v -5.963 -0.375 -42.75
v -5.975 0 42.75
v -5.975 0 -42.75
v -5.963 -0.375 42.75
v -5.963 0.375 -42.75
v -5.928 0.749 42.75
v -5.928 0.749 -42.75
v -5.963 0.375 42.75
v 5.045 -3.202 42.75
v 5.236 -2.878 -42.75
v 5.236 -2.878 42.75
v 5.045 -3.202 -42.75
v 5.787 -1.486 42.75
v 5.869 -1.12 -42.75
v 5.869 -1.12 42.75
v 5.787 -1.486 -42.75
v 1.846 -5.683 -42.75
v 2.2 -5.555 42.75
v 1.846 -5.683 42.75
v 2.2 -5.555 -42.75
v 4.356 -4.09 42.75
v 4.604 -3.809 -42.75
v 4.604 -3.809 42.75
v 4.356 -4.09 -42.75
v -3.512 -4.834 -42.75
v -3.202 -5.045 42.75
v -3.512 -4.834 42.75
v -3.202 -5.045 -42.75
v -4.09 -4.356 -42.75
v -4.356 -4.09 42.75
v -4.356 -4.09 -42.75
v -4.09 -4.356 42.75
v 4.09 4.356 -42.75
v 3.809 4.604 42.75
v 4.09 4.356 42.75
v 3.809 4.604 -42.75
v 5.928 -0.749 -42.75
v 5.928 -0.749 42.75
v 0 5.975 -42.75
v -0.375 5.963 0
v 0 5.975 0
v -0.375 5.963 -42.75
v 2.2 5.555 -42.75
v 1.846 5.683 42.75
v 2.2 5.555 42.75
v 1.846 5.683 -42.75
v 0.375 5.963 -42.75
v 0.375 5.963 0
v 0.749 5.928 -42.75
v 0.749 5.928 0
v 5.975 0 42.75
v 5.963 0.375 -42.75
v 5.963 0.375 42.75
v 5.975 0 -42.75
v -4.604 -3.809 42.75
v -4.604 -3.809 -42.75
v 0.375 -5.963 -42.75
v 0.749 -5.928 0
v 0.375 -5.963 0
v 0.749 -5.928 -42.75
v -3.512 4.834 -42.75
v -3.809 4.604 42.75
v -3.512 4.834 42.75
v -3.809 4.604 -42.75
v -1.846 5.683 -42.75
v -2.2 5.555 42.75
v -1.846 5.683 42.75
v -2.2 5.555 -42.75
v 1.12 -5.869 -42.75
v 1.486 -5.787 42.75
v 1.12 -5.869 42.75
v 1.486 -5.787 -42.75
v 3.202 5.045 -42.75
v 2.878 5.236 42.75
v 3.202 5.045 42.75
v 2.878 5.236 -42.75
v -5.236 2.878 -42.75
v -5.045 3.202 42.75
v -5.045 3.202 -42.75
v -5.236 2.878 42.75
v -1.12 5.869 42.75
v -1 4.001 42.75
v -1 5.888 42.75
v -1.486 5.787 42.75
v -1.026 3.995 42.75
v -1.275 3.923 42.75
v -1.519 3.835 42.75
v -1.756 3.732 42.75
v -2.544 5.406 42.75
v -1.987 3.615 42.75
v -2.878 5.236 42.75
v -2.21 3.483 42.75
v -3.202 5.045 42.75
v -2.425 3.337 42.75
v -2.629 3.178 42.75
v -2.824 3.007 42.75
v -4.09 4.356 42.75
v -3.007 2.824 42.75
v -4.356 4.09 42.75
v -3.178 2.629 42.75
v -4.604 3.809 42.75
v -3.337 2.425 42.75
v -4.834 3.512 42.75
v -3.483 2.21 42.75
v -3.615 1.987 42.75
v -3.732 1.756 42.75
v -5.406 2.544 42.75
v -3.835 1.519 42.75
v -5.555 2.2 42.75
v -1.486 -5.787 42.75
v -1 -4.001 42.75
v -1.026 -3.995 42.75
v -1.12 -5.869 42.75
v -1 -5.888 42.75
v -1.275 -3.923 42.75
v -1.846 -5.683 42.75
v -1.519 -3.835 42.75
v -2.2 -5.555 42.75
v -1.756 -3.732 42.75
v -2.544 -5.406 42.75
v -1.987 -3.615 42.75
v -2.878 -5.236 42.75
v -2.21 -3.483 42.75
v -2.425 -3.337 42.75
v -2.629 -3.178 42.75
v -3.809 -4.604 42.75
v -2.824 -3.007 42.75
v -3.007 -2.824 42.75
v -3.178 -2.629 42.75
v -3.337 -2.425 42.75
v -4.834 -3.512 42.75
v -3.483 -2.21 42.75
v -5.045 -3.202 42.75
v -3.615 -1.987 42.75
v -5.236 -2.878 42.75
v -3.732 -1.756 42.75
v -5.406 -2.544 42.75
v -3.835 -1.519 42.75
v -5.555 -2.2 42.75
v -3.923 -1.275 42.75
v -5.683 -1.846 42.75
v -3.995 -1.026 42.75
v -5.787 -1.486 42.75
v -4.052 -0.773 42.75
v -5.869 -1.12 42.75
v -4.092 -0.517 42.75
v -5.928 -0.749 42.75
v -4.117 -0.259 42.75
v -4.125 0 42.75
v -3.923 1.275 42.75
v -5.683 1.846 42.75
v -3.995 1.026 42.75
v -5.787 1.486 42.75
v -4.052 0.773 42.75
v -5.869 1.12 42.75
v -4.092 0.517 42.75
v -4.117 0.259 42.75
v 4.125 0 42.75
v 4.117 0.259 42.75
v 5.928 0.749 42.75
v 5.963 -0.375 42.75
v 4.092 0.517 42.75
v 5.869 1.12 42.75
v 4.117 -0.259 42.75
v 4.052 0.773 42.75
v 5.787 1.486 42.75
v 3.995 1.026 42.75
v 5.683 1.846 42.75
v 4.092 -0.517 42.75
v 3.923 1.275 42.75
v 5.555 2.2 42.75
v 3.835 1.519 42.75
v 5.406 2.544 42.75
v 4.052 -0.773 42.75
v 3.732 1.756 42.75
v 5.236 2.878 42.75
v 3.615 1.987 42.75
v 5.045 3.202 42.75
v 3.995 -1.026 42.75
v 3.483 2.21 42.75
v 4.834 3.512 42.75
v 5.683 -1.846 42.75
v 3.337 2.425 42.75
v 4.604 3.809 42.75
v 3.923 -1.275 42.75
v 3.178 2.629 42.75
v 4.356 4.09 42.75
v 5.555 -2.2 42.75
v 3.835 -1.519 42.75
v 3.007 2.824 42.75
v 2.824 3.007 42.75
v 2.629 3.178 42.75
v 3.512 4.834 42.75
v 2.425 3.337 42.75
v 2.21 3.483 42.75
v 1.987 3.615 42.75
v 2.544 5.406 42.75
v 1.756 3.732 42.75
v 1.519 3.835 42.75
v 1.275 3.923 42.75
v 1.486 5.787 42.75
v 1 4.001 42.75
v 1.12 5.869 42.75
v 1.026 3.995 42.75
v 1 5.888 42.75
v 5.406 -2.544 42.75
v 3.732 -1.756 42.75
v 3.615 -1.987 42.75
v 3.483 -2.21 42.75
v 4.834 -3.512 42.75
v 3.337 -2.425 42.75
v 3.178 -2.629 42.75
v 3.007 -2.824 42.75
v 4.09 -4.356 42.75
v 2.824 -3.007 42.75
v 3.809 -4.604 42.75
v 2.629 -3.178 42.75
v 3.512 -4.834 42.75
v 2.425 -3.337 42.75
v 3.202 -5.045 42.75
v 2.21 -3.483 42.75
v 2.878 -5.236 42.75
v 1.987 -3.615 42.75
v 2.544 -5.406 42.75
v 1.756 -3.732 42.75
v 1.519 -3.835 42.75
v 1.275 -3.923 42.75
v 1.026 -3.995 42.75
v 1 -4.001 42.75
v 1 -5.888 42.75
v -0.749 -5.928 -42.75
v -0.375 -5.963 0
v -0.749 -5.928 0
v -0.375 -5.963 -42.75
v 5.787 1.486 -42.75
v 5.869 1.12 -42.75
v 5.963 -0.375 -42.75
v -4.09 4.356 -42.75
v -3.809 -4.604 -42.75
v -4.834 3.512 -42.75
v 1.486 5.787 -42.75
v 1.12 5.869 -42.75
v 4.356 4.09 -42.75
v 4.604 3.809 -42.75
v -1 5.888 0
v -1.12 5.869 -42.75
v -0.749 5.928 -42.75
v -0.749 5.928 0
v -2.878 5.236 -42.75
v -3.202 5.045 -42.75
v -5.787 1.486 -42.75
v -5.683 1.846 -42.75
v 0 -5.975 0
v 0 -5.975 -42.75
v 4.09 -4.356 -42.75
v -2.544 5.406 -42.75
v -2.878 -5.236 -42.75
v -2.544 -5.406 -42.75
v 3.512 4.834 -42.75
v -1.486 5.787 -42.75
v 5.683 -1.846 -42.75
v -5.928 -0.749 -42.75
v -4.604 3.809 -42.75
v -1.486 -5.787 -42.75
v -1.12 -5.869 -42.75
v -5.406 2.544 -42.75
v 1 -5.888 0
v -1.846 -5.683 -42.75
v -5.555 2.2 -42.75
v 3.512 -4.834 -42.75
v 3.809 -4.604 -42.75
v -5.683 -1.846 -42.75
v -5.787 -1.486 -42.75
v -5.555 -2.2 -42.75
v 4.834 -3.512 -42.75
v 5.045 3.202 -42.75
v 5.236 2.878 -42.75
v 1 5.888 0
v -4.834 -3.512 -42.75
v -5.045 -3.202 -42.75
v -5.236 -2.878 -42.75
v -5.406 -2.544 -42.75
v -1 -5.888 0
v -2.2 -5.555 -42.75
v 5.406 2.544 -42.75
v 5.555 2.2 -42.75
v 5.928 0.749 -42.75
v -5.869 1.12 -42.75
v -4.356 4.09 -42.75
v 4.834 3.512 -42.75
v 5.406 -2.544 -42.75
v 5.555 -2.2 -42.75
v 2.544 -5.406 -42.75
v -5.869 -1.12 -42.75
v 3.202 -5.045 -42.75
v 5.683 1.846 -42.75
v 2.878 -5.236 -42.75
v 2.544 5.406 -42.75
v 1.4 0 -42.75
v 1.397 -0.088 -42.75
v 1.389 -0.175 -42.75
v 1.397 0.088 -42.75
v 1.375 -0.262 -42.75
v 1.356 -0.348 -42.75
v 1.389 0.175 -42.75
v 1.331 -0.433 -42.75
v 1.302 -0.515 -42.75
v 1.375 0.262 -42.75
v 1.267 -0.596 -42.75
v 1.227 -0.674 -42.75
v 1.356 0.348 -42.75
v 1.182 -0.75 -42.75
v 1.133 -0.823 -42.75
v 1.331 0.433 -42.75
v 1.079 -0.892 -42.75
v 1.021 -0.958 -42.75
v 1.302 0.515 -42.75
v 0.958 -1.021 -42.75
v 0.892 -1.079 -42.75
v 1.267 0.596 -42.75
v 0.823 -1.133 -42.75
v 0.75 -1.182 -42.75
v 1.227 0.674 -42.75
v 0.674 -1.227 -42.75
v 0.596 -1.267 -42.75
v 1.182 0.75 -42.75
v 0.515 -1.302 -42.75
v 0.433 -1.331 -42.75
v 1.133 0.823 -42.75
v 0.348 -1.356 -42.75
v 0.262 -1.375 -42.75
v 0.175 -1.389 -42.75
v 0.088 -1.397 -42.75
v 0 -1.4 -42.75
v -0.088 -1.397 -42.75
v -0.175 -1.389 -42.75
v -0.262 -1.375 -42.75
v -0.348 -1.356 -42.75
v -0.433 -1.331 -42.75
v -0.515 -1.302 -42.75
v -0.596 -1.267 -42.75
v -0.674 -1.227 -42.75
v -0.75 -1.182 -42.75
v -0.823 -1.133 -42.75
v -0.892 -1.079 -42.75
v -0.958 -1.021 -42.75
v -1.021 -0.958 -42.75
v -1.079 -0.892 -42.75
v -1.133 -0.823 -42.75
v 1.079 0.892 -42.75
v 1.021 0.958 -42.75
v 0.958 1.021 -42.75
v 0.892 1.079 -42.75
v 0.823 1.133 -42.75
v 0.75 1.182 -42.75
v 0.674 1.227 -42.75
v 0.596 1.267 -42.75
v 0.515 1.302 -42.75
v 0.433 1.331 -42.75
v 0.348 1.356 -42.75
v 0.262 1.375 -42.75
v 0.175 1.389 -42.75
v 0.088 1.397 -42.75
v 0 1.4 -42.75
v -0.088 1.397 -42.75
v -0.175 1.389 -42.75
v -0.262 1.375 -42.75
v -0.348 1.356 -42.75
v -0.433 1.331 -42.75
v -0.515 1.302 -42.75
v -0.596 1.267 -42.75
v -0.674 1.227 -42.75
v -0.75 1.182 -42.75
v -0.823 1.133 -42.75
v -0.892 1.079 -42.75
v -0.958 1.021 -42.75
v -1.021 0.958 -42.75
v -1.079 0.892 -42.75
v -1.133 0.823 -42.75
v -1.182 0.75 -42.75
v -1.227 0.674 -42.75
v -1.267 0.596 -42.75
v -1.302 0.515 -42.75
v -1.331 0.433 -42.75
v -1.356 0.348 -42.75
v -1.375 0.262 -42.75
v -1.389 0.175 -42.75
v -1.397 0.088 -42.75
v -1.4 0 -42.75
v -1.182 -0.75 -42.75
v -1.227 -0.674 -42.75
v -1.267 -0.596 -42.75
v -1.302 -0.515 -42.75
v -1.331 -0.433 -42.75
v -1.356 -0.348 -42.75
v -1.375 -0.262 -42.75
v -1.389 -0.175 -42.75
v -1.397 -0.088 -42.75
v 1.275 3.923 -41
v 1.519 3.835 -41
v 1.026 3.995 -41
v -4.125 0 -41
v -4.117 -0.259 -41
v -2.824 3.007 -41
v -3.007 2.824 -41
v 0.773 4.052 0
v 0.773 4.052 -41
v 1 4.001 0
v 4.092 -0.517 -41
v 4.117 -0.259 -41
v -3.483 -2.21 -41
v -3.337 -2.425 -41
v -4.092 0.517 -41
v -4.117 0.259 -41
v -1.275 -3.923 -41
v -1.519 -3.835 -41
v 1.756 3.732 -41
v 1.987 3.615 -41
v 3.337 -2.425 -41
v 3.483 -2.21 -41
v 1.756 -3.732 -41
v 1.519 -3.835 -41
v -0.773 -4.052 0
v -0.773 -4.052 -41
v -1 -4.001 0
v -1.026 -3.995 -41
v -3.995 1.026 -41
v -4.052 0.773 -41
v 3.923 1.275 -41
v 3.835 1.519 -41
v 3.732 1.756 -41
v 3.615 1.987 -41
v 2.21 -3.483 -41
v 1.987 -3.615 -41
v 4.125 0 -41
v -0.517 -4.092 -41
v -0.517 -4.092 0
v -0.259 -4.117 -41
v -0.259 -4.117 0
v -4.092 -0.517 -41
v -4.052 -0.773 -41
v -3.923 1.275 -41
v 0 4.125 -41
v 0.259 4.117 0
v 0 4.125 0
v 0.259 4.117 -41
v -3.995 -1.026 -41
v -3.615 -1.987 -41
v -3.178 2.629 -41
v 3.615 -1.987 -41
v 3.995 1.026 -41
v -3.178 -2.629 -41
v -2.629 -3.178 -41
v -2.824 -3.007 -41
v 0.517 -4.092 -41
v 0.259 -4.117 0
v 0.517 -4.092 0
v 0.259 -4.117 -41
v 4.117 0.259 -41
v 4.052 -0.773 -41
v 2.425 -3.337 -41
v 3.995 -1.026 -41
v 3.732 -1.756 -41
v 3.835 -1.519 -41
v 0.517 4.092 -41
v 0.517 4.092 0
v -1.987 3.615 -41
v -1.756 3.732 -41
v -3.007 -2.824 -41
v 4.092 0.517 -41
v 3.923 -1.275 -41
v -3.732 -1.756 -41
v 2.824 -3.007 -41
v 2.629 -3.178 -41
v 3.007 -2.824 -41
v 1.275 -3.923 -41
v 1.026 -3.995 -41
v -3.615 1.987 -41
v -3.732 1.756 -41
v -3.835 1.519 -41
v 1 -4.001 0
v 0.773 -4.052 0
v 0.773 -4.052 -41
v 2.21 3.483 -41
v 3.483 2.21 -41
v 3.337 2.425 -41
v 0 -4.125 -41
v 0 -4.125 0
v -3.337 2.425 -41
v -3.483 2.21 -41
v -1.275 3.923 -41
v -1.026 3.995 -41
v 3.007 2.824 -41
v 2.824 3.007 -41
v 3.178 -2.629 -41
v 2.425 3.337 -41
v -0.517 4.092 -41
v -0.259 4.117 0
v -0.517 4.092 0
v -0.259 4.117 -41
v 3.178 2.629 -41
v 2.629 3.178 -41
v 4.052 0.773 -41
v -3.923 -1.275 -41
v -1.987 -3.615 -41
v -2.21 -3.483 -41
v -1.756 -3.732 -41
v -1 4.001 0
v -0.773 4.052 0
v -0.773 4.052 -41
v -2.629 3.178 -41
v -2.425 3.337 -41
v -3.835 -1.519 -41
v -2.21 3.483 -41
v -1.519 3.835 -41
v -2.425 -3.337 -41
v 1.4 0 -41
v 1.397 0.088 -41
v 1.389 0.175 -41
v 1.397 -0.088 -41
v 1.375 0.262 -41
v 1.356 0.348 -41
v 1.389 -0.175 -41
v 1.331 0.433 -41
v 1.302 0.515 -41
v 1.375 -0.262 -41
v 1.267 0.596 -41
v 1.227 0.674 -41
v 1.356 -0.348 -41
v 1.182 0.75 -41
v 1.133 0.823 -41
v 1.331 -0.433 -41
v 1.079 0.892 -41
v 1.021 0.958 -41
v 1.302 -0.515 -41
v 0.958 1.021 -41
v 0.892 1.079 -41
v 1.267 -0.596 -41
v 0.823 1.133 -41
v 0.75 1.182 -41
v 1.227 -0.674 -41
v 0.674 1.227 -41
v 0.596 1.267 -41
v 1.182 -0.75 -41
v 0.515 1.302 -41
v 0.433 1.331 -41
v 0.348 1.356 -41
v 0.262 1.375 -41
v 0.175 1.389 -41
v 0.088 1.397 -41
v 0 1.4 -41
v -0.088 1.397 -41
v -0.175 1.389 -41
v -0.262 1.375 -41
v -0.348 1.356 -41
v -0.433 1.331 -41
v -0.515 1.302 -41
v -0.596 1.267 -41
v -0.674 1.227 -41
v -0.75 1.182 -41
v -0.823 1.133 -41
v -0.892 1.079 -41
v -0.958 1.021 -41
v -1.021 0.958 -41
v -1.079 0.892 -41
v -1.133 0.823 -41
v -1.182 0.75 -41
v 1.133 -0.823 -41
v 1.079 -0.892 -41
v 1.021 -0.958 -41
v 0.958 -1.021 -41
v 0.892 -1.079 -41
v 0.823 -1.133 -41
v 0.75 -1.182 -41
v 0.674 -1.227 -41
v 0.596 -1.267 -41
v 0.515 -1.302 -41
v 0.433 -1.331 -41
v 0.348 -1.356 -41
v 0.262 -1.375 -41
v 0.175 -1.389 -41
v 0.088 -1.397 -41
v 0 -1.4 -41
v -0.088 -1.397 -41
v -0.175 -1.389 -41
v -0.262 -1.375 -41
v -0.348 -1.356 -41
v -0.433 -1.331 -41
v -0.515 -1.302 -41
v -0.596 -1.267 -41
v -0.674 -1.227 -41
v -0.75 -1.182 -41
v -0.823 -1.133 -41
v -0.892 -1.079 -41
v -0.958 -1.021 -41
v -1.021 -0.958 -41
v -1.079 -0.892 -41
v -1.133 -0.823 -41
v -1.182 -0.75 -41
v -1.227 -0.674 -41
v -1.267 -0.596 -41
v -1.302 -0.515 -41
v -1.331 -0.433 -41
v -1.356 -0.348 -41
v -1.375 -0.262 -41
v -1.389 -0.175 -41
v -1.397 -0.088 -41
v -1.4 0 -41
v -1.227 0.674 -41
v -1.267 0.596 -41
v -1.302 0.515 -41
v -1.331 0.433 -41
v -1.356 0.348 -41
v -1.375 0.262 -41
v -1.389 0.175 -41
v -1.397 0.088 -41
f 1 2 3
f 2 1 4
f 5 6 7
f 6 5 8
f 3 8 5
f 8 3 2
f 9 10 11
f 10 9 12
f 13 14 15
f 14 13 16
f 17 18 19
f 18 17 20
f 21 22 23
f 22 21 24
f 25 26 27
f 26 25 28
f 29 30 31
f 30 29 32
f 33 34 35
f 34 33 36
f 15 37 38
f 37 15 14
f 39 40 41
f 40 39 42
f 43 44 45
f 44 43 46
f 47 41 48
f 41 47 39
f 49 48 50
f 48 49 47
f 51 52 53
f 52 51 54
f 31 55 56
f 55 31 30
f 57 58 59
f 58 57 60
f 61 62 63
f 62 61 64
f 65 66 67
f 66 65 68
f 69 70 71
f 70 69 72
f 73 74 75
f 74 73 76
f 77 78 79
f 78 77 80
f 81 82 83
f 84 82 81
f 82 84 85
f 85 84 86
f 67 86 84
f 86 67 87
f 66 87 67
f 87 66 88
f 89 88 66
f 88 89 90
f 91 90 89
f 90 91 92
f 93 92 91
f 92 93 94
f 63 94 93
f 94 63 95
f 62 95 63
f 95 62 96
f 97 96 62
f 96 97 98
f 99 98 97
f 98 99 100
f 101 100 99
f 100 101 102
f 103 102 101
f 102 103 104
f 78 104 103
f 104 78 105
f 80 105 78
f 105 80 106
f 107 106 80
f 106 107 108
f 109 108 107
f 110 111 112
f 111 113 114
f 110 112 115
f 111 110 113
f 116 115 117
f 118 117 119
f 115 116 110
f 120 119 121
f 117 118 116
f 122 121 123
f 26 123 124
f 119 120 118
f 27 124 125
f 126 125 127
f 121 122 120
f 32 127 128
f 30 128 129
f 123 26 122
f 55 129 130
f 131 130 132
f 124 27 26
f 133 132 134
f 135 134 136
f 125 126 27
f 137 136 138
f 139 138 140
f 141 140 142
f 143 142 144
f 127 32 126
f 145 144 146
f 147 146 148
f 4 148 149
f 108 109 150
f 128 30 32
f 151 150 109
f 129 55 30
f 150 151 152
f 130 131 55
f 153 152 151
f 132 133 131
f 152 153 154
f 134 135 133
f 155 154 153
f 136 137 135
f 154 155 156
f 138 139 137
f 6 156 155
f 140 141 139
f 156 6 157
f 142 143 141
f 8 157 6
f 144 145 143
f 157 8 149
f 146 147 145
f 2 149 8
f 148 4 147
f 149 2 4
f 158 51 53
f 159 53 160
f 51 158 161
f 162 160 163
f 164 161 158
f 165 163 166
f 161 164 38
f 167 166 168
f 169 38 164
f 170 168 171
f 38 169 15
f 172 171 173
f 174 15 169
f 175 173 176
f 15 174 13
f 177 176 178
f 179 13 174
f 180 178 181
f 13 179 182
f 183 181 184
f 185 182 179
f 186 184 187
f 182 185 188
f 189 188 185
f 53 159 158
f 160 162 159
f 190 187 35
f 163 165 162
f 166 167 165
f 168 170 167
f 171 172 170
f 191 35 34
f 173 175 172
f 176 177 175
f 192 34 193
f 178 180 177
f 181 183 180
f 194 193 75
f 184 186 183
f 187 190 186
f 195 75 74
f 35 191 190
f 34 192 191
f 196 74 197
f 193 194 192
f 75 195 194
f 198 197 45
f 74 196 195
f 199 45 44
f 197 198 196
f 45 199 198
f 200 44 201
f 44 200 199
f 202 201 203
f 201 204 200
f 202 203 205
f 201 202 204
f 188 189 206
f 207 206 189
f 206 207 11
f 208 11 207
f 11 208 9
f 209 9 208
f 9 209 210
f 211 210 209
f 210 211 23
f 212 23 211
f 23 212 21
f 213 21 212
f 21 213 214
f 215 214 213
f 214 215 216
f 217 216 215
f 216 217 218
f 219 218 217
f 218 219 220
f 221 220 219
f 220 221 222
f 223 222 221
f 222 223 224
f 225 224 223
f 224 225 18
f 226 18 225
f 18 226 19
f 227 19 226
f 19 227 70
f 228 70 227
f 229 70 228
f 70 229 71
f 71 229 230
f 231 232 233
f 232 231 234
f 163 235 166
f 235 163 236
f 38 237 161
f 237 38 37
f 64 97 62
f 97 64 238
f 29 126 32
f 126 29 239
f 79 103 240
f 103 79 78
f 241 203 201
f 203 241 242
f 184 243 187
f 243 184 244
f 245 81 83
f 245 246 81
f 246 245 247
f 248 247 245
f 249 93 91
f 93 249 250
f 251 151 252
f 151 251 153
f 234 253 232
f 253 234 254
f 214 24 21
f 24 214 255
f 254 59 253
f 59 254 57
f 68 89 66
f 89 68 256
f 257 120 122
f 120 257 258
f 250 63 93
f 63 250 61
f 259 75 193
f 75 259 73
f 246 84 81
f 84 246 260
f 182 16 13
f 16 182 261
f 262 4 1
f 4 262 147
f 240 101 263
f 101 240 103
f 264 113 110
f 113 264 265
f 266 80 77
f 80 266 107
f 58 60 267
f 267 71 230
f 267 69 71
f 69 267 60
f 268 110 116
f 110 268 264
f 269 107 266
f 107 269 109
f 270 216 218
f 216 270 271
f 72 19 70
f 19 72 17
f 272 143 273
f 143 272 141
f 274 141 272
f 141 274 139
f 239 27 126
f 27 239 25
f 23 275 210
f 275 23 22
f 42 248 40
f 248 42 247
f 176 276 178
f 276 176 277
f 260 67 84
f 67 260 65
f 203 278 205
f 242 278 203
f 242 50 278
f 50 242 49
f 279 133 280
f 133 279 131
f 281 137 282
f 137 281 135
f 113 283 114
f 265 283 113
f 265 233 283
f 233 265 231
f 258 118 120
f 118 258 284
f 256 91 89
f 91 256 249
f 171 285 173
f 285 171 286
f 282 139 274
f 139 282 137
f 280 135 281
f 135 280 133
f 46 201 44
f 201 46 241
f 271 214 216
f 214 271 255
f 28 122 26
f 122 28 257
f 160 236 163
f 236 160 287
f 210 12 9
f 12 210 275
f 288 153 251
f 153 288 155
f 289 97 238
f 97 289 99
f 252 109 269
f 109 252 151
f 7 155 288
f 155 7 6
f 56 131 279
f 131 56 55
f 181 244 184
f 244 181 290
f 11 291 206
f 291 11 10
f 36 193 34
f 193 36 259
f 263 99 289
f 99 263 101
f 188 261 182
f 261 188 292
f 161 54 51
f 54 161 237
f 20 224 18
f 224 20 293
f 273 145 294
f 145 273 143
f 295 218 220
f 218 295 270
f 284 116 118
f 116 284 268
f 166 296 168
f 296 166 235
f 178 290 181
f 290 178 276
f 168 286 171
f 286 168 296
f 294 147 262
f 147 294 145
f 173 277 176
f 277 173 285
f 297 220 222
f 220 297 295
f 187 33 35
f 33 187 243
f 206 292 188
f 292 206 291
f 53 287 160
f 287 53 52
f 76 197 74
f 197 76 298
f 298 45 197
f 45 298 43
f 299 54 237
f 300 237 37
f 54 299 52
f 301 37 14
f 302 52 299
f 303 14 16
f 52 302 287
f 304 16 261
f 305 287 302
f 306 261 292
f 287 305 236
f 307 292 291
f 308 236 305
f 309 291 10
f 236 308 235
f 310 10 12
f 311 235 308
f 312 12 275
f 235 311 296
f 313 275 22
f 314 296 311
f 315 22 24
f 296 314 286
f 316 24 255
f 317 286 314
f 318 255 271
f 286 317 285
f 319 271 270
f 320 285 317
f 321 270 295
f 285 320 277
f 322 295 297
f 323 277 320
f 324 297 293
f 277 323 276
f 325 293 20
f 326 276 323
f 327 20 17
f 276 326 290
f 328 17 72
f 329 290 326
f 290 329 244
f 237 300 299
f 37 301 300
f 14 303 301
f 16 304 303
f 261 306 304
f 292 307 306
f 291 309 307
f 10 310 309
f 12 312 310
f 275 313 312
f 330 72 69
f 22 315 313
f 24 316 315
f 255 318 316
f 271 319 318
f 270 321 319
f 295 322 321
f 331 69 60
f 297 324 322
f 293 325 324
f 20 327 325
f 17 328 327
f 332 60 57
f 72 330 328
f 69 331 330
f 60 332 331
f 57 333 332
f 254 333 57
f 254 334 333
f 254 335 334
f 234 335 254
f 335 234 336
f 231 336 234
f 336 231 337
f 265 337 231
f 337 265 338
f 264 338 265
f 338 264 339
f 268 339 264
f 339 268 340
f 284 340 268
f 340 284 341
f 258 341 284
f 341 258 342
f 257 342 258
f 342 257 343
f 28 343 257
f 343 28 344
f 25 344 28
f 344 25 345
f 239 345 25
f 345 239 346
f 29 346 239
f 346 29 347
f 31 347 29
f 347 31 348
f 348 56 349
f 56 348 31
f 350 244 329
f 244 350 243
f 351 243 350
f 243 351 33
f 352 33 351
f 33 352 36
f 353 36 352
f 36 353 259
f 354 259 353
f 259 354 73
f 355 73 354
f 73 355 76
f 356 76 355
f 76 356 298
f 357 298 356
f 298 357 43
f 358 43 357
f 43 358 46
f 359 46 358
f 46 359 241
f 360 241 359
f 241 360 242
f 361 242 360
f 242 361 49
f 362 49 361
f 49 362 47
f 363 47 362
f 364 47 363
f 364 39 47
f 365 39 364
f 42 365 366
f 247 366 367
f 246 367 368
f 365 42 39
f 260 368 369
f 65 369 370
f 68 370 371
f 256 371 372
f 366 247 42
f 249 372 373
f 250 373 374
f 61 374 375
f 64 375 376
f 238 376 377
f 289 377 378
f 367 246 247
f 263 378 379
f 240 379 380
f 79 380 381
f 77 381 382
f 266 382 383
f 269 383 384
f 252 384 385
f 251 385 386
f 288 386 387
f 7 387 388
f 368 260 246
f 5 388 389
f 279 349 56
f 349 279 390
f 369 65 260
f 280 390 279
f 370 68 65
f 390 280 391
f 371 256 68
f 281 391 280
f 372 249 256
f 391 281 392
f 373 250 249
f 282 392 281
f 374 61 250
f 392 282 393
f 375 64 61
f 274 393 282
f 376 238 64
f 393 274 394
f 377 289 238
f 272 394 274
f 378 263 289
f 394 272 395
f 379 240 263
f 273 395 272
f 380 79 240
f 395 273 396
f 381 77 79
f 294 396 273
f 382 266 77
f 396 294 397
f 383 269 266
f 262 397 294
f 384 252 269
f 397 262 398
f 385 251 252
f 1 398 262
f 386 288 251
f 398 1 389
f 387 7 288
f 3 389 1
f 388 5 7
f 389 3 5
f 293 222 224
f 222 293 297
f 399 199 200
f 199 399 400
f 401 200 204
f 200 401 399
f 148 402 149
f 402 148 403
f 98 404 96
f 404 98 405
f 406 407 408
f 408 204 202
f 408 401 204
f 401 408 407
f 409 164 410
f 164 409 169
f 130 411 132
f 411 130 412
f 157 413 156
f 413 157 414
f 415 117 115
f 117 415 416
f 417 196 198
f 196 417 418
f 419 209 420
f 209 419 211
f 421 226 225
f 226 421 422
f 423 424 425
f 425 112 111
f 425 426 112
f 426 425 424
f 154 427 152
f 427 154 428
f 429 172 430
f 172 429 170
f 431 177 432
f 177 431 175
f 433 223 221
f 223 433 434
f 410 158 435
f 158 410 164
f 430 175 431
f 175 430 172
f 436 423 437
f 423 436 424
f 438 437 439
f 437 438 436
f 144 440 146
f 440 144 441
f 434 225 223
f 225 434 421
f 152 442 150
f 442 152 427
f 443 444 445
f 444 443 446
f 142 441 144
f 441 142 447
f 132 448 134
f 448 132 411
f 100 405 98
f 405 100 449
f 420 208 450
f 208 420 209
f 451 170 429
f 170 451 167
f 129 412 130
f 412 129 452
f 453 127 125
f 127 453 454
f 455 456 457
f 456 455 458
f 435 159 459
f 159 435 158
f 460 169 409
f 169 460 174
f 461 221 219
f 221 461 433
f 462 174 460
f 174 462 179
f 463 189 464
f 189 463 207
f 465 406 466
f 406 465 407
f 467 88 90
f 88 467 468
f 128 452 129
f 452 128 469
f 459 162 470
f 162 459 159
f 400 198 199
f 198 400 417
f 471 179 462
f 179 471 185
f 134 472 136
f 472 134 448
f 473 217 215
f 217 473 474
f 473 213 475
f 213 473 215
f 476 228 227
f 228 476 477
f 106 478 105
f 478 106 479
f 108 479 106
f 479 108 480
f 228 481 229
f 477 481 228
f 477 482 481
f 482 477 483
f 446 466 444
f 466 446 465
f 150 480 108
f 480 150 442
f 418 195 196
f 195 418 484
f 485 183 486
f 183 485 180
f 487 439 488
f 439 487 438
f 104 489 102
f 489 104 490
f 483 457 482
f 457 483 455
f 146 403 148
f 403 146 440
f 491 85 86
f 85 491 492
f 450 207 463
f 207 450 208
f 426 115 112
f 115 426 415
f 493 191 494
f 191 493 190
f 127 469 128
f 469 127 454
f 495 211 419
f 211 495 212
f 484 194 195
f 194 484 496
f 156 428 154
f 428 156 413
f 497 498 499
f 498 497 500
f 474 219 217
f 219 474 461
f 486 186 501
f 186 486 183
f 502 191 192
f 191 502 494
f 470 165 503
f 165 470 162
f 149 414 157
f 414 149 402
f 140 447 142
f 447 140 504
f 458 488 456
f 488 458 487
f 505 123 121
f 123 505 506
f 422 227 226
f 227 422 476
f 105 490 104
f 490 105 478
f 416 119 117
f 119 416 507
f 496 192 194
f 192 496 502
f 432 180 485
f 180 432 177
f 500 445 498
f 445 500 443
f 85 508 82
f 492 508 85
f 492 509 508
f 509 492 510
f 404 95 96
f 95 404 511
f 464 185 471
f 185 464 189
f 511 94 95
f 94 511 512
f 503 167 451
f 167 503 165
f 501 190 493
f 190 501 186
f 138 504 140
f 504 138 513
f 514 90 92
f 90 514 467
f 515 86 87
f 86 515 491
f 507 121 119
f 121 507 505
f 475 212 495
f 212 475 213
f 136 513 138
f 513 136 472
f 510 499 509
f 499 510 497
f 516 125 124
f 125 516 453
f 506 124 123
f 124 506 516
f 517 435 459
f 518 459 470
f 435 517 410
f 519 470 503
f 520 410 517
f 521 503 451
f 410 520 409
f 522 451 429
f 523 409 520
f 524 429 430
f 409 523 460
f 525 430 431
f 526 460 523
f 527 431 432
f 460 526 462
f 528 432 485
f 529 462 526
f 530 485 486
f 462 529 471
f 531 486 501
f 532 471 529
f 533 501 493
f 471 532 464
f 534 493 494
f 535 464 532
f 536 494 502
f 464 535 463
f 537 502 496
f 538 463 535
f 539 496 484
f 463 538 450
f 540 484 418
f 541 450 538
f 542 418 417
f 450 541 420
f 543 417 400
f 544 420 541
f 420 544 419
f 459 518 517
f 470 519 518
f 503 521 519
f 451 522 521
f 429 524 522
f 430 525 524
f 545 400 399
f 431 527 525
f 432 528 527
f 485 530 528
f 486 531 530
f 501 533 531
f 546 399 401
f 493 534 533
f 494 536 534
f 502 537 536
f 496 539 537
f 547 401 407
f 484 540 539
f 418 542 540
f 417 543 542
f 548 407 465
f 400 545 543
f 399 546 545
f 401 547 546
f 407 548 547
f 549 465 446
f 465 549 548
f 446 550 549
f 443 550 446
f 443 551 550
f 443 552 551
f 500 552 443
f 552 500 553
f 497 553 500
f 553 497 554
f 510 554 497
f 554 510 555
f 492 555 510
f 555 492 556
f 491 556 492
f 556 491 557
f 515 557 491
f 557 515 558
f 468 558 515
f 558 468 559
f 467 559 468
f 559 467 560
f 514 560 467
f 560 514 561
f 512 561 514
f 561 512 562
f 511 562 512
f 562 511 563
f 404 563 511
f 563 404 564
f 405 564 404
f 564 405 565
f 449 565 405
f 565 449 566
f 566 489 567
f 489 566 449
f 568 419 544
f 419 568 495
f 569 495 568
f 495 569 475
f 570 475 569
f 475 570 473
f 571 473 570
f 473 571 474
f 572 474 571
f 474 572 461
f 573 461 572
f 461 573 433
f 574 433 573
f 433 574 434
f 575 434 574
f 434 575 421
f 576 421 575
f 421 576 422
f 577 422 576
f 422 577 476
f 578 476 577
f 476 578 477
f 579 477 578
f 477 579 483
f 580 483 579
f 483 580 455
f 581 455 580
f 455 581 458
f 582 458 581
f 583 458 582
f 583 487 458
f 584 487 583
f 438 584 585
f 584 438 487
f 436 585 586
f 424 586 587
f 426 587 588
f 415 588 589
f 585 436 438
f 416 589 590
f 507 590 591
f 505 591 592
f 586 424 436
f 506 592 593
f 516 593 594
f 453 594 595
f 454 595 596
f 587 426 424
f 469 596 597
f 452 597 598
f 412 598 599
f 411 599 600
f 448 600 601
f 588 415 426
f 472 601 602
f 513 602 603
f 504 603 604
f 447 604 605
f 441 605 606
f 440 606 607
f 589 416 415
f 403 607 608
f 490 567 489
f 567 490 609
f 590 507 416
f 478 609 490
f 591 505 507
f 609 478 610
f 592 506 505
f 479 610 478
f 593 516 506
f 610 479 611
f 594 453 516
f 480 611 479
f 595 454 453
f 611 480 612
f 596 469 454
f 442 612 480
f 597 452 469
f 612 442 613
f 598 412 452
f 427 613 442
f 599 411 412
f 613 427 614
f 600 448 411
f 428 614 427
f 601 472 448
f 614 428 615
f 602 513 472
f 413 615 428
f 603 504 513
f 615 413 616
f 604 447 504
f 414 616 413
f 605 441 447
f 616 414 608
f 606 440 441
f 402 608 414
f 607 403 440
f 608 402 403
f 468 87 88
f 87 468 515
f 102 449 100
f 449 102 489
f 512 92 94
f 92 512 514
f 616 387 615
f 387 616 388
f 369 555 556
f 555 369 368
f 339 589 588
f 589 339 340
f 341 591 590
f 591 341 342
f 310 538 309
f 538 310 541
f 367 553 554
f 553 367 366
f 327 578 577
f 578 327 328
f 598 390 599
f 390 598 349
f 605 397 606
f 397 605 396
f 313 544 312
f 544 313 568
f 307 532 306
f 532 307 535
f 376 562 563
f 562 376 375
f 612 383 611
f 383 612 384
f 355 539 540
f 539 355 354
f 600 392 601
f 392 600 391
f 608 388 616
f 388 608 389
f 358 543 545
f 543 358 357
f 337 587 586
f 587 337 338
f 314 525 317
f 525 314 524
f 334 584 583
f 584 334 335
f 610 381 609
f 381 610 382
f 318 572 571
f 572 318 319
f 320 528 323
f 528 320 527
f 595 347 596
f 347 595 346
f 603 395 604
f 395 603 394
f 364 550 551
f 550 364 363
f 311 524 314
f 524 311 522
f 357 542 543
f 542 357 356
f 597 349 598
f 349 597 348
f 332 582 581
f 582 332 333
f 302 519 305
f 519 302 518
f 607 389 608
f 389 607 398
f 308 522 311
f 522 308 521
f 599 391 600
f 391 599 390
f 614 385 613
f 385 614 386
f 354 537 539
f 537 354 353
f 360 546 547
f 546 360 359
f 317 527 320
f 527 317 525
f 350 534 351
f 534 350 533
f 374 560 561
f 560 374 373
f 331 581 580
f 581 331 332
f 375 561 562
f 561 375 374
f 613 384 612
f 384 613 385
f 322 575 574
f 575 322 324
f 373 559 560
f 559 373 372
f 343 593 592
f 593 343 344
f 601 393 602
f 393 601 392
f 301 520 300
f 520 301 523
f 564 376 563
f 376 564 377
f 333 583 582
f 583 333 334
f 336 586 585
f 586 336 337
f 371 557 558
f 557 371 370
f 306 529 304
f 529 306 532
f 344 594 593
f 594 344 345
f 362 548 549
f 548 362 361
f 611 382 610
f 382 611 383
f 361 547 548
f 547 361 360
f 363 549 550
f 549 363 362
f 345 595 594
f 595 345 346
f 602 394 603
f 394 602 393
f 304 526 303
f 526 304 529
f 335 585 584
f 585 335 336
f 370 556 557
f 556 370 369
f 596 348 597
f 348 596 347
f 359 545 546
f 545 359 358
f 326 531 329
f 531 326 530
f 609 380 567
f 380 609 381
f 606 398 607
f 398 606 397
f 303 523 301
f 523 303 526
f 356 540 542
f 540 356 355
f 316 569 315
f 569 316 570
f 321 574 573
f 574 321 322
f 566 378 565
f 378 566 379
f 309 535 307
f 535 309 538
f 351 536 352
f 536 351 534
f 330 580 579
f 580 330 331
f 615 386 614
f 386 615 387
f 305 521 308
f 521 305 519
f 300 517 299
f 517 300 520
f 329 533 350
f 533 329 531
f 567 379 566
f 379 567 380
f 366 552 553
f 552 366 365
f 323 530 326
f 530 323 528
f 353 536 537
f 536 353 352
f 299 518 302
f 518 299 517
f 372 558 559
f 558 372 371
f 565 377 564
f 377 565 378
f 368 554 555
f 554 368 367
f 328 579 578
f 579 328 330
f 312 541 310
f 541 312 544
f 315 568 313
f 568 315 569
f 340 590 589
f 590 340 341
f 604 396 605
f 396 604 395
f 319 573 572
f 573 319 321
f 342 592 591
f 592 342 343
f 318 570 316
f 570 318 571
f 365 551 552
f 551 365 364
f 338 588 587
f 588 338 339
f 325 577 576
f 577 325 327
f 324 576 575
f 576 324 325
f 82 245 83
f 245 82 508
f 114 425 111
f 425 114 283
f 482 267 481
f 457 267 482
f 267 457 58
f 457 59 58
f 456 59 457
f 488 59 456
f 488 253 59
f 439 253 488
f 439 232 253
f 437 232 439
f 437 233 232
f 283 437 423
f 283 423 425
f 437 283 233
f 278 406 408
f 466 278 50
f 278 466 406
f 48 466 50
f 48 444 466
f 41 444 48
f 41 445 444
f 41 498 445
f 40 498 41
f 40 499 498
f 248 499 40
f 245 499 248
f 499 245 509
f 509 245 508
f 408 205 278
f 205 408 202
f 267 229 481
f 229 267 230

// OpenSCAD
// file: ../../../shared_helper.scad
// Shared Helper variables and modules

// Variables
quality_value = 100;
$fn = quality_value;

// Screw Holes
m2_hole_diameter = 1.85; // 1.95;
m2_loose_diameter = 2.50;
m2_counter_sink_diameter = 3.80;
m2_counter_sink_length = 2.00;
m2_hole_offset = m2_hole_diameter / 2.0;
m2_hole_height = 100.00;
m2_nut_outer_width = 3.90;
m2_nut_outer_height = 4.40;
m2_nut_outer_depth = 1.50;
// M2_Counter_Sink_Depth

m3_hole_diameter = 2.9; // 2.8
m3_hole_offset = m3_hole_diameter / 2.0;
m3_hole_height = 100.00;
m3_head_diameter = 6.2;
m3_head_depth = 3.0; // 2.5??, 3.0

m4_hole_diameter = 3.85; // 3.90
m4_hole_offset = m4_hole_diameter / 2.0;
m4_hole_height = 100.00;
m4_head_diameter = 7.55;
m4_head_depth = 3.0; // 2.5??, 3.0

// Tolerances
hole_tight_tolerance = 0.05;
hole_loose_tolerance = 0.20;

// Springs
spring_diameter = 5.45;
spring_length = 35.00;

// Nails
brass_nail_diameter = 2.4; // 2.00; // 1.95 at the beginning it tapers
brass_nail_length = 29.54;
brass_nail_head_diameter = 3.20; // 3.00; // oval 2.84 - 3.1 mm
brass_nail_head_depth = 1.80; //1.00; // 1.80; // 2.00;

// General Variables
v_wheel_hole_diameter = 5.20;
v_wheel_offset = (v_wheel_hole_diameter / 2.0) + 2.0;

// Hot-End Holes
stand_off_hole_diameter = m3_hole_diameter;
stand_off_width_distance = 11.60 + stand_off_hole_diameter;

// Magnets
// Small Magnet (Neo)
small_magnet_height = 2.00; // ±2.00 1.97
small_magnet_diameter = 3.00; // ±3.00 // 2.98

// Medium Magnet (Neo)
medium_magnet_height = 2.96; // ±3.00
medium_magnet_diameter = 5.00;

// Large Magnet (ferrite)
large_magnet_height = 2.98; // ±3.00
large_magnet_diameter = 9.79; // ±10.00

// Switches
// D2F Switch
d2f_length = 12.88; // ±12.70
d2f_width = 5.84; // ±5.70
d2f_depth = 6.20; // ±7.00 (5 + 2) ... ±6.50
d2f_pins = 9.00 - 6.50;
d2f_plunger_length = 2.64;
d2f_plunger_width = 0.97; // ±1.00
d2f_plunger_depth = 0.39; // ±0.50
d2f_mount_hole_position = 2.10;
d2f_hole_position_from_centre = 2.85;
d2f_pin_pre_travel = 0.50;
d2f_mount_hole_shift = 4.40 + m2_hole_offset + m2_hole_offset;
d2f_switch_base = 0.2 + 0.7 + 1.50 + 0.55 - 1.0;
d2f_switch_hole_hight = 22.00;
d2f_extra_tolerance_for_switch_holes = 0.12;

// 10t85 Switch
10t85_length = 20.04; // ±19.90
10t85_width = 6.34; // ±6.40
10t85_depth = 10.64; // ±10.70
10t85_plunger_length = 3.28; // ±4.00
10t85_plunger_width = 1.96;
10t85_plunger_depth = 1.30;

// Creality Endstop Board, 2208 V2.0
// creality_endstop_hole_diameter = m3_hole_diameter + hole_loose_tolerance; // Hole is M3 sized but meant for a loose M2
creality_endstop_hole_diameter = m2_hole_diameter + hole_tight_tolerance;
creality_endstop_hole_offset = 15.00;
creality_endstop_board_height = 20.30;
creality_endstop_plug_height_extension = 2.00;
creality_endstop_board_width = 20.20;
creality_endstop_board_thickness = 1.30;
creality_endstop_board_pins_thickness = 3.20 - creality_endstop_board_thickness;
creality_endstop_board_switch_thickness = 8.50 - creality_endstop_board_thickness;
creality_endstop_board_back_space = 2.00; // Taken from the rail mount bracket
creality_endstop_board_back_height = 14.90;
creality_endstop_board_back_width = 16.80;
creality_endstop_back_thickness = 3.30;
creality_endstop_back_hole_wall_spacing = 1.50; //3.00;

// Small Tactile Switch
small_tactile_switch_length = 6.21;
small_tactile_switch_width = 6.17;
small_tactile_switch_depth = 3.18;
small_tactile_switch_plunger_diameter = 3.40;
small_tactile_switch_plunger_depth = 1.40;

// Large Tactile Switch
large_tactile_switch_length = 12.03;
large_tactile_switch_width = 11.95;
large_tactile_switch_depth = 3.12;
large_tactile_switch_plunger_length = 3.75;
large_tactile_switch_plunger_width = 3.70;
large_tactile_switch_plunger_depth = 3.94;

// Button
button_topper_top_diameter = 11.65;
button_topper_bottom_diameter = 12.96;
button_topper_depth = 5.64;
button_topper_bottom_depth = 4.38;

// Belts
// GT2

// Modules
// Creality Mounting Holes
module CrealityCounterSunkHotEndMountingHoles(total_casing_depth, casing_top_extension) {
  // Mounting holes with countersinking - horizontal, through-holes, properly positioned
  cylinder(d=m3_hole_diameter, h=total_casing_depth + 2.00, center=true);
  cylinder(d=m3_hole_diameter, h=total_casing_depth + 2.00, center=true);

  translate([stand_off_width_distance, 0, 0]) {
    cylinder(d=m3_hole_diameter, h=total_casing_depth + 2.00, center=true);
    cylinder(d=m3_head_diameter + hole_loose_tolerance, h=4 + m3_head_depth + 6 + 1.8 + casing_top_extension);
  }
}

module CrealityHotEndMountingHoles(total_casing_depth) {
  cylinder(d=m3_hole_diameter, h=total_casing_depth + 2.00, center=true);

  translate([stand_off_width_distance, 0, 0]) {
    cylinder(d=m3_hole_diameter, h=total_casing_depth + 2.00, center=true);
  }
}

module CrealityEndstopMountHoles(height, include_back_nut_cutout) {
  cylinder(d=creality_endstop_hole_diameter, h=height, center=true);

  translate([creality_endstop_hole_offset, 0, 0]) {
    cylinder(d=creality_endstop_hole_diameter, h=height, center=true);
  }

  if (include_back_nut_cutout) {
    back_depth = m2_nut_outer_depth;

    translate([-2.0, -2.0, 0]) {
      cube([m2_nut_outer_width, m2_nut_outer_height, back_depth]);

      translate([creality_endstop_hole_offset, 0, 0]) {
        cube([m2_nut_outer_width, m2_nut_outer_height, back_depth]);
      }
    }
  }
}

module CrealityEndstopBackSpace(base_cutout_extension) {
  // Smaller gap between screw holes
  translate([creality_endstop_hole_diameter + creality_endstop_back_hole_wall_spacing, 0.0, 0.0]) {
    cube([creality_endstop_board_back_width - 2 * (creality_endstop_hole_diameter + creality_endstop_back_hole_wall_spacing), base_cutout_extension, creality_endstop_back_thickness + 1.0]);
  }

  // Top gap part
  translate([0.0, base_cutout_extension, 0]) {
    cube([creality_endstop_board_back_width, (creality_endstop_board_back_height + base_cutout_extension), creality_endstop_back_thickness + 1.0]);
  }
}

// D2F Switch Mounting
module D2F_Switch_Space() { // Should be used as a negative / difference space
  // D2F Switch Space
  // switch_base = 0.2 + 0.7 + 1.50 + 0.55;
  // switch_base = 0.2 + 0.7 + 1.50 + 0.55 - 1.0;
  switch_base = d2f_switch_base;

  // cube([d2f_depth, d2f_width + 1.05 + 0.75 - 0.95, d2f_length + casing_top_edge_buffer]); // 1.05
  cube([d2f_length, (d2f_width + 2.00) + d2f_pins, d2f_depth]);
}

module D2F_Switch_Mount_Holes() {
  rotate([0, 0, 90]) {
    translate([0.0, d2f_hole_position_from_centre, 0.0]) {
      cylinder(d=m2_hole_diameter + hole_tight_tolerance + (d2f_extra_tolerance_for_switch_holes * 3), h=d2f_switch_hole_hight);
    }

    translate([0.0, -(d2f_hole_position_from_centre + m2_hole_offset), 0.0]) {
      cylinder(d=m2_hole_diameter + hole_tight_tolerance + (d2f_extra_tolerance_for_switch_holes * 3), h=d2f_switch_hole_hight);
    }
  }
}
// main file
// 8mm to 12mm Rod Sleeve Adapter

// This sleeve converts an 8mm linear stainless rod to 12mm mounting holes
// Uses shared_helper.scad for tolerances and quality settings

include <../../../shared_helper.scad>;

revision = 1.0;

// Rod dimensions
inner_rod_diameter = 8.0;
outer_sleeve_diameter = 12.0;
sleeve_length = 25.5 + 60.00; //30.0;  // Adjust as needed // +1.5

// Tolerances
// inner_tolerance = (2 * hole_tight_tolerance) + hole_loose_tolerance;    // Tight perfect fit for the 8mm rod
inner_tolerance = hole_tight_tolerance + hole_loose_tolerance;    // Tight fit for the 8mm rod
outer_tolerance = hole_tight_tolerance;  // Slightly looser fit for the 12mm mounting holes

// Gap parameters for installation
gap_width = 2.0;  // Width of the gap to allow squeezing

// Create the sleeve
rotate([0, 180, 0]) {
  difference() {
    // Outer cylinder
    cylinder(d=outer_sleeve_diameter - outer_tolerance, h=sleeve_length, center=true);

    // Inner hole for 8mm rod
    rotate([0, 0, 180]) {
      translate([0, 0, -sleeve_length + 29.80 + 0.2 + 12.5 - 0.5 -1.0])
      cylinder(d=inner_rod_diameter + inner_tolerance, h=sleeve_length);
    }

    // Small hole to push rod out
    cylinder(d=m3_hole_diameter - 0.1, h=sleeve_length + 1.0, center=true);

    // Gap to allow squeezing for installation
    translate([0, 0, -sleeve_length/2 - 0.5])
    cube([gap_width, outer_sleeve_diameter + 1, sleeve_length + 1], center=true);
  }
}
